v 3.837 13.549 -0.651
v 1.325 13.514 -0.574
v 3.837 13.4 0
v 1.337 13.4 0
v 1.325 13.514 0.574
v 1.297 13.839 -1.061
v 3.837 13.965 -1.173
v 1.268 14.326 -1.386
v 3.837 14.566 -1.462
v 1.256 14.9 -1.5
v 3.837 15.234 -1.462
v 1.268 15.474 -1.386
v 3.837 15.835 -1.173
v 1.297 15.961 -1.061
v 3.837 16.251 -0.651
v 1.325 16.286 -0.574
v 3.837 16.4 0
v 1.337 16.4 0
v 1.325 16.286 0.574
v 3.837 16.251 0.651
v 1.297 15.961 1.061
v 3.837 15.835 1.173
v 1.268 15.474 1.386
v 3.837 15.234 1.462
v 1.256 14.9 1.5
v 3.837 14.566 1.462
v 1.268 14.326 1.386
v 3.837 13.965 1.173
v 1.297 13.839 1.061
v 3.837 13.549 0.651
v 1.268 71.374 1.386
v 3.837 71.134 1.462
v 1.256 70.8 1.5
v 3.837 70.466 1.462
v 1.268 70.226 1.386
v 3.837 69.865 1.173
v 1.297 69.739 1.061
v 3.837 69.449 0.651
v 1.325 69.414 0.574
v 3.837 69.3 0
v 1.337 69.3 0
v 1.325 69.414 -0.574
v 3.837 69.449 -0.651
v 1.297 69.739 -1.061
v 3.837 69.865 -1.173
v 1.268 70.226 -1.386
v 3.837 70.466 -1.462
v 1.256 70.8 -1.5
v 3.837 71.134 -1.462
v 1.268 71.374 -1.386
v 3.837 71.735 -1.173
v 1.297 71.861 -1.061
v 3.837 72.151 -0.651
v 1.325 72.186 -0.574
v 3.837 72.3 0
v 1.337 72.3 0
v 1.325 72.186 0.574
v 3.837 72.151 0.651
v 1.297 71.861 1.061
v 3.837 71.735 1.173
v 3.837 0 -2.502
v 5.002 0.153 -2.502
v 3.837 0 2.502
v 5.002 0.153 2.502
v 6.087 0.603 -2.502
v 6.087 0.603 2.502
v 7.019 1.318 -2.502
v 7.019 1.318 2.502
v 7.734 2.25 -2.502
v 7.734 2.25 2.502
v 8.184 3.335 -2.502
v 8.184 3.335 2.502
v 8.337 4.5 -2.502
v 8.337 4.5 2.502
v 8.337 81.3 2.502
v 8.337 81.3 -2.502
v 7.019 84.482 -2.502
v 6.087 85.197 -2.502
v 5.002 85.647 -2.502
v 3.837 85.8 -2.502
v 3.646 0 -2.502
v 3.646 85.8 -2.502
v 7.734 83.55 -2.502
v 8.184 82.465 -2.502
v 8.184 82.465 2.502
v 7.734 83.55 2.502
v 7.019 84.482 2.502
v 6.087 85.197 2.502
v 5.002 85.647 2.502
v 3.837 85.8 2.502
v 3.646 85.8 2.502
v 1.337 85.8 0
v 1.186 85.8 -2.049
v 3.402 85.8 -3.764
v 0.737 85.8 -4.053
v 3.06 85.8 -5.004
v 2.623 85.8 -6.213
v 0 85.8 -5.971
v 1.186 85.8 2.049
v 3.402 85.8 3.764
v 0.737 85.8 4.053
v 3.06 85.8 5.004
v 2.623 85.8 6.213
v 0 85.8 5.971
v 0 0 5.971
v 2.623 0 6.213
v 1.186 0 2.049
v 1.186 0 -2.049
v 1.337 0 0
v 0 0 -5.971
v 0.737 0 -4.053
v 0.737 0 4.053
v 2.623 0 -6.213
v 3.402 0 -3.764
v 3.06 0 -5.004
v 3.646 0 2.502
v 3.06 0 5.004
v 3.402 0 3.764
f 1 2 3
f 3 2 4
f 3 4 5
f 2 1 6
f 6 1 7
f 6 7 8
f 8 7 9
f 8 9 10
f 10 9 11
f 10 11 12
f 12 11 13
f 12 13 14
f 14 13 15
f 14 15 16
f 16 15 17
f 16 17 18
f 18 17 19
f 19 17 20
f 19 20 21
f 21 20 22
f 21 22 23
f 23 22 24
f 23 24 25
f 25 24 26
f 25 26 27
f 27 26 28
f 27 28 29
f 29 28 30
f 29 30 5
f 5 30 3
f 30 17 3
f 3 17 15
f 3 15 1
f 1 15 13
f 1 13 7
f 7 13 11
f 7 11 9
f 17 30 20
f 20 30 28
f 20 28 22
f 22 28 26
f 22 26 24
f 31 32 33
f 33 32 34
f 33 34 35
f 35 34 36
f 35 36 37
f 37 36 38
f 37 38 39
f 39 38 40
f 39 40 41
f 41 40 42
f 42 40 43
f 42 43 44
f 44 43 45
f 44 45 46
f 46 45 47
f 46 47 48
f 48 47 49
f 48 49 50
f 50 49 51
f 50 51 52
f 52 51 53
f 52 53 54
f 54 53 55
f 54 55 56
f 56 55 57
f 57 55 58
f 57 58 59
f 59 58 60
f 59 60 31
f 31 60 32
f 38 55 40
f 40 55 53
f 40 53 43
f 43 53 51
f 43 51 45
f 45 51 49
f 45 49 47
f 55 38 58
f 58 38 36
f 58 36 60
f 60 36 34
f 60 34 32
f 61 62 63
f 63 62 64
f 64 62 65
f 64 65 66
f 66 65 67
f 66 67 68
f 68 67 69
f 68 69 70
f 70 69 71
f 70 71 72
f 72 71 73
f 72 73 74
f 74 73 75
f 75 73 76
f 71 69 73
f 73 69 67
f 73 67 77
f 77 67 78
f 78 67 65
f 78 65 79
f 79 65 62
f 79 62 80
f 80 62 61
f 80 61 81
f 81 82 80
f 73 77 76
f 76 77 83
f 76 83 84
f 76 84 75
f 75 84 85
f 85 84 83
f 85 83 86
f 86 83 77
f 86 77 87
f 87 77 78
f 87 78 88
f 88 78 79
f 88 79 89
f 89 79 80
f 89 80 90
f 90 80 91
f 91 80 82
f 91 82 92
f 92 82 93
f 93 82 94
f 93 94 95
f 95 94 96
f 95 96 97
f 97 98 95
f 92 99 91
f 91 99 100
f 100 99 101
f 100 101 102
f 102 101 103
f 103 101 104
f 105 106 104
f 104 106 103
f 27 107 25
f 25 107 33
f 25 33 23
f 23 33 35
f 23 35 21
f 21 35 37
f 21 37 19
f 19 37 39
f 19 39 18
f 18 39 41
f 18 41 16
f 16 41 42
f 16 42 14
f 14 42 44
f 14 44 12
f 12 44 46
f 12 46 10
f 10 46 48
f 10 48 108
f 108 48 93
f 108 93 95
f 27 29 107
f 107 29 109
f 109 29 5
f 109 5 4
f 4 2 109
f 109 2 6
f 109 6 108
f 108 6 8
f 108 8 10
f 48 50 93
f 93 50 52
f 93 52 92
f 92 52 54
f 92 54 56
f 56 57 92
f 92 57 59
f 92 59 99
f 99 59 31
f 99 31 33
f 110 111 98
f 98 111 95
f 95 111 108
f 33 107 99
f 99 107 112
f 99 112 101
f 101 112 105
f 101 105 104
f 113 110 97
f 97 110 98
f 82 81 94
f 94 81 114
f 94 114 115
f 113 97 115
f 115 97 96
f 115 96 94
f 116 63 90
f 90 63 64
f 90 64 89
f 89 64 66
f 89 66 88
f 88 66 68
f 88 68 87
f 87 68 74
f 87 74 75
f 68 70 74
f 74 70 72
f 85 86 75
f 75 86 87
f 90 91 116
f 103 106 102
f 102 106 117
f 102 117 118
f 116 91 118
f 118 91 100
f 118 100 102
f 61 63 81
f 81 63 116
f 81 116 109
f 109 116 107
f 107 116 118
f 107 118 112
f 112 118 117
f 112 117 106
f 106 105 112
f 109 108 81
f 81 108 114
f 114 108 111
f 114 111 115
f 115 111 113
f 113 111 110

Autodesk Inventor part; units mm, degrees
ref_plane "YZ Plane" through (0, 0, 0) normal (1, 0, 0) x (0, 1, 0)
ref_plane "XZ Plane" through (0, 0, 0) normal (0, 1, 0) x (-1, 0, 0)
sketch "Sketch1" plane through (0, 0, 0) normal (0, 1, 0) x (-1, 0, 0)
  arc A0 (-1.337, 0) -> (0, -5.9706) centre (12.663, 0) ccw
  line L0 (-1.337, 0) -> (0, 0)
  line L1 (0, -5.9706) -> (-2.6226, -6.213)
  line L2 (0, -5.9706) -> (5.1195, -5.9706) construction
  line L3 (0, 5.9706) -> (-2.6226, 6.213)
  line L4 (0, 5.9706) -> (2.6337, 5.9706) construction
  arc A1 (0, 5.9706) -> (-1.337, 0) centre (12.663, 0) ccw
  line L5 (-3.6462, -2.502) -> (-3.837, -2.502)
  line L6 (-3.6462, 2.502) -> (-3.837, 2.502)
  line L7 (-3.837, -2.502) -> (-8.337, -2.502)
  line L8 (-8.337, -2.502) -> (-8.337, 2.502)
  line L9 (-8.337, 2.502) -> (-3.837, 2.502)
  arc A2 (-2.6226, 6.213) -> (-3.6462, 2.502) centre (12.663, 0) ccw
  arc A3 (-3.6462, -2.502) -> (-2.6226, -6.213) centre (12.663, 0) ccw
  dimension "d2" = 174.72
  dimension "d3" = 174.72
  dimension "d7" = 4.5
extrude "Extrusion1" add sketch "Sketch1" along normal blind 85.8
fillet "Fillet1" radius 4.5 2 edges at (8.337, 85.8, 0) (8.337, 0, 0)
ref_plane "Work Plane1" through (3.837, 85.8, -2.502) normal (-1, 0, 0) x (0, -1, 0)
sketch "Sketch2" plane through (3.837, 85.8, -2.502) normal (-1, 0, 0) x (0, -1, 0)
  line L0 (0, 0) -> (0, 5.004) projected
  line L1 (0, 2.502) -> (15, 2.502) construction
  line L2 (85.8, 5.004) -> (85.8, 0) projected
  line L3 (85.8, 2.502) -> (70.8, 2.502) construction
  circle A0 centre (15, 2.502) radius 1.5
  line L4 (70.8, 2.502) -> (70.9, 2.502) construction
  circle A1 centre (70.9, 2.502) radius 1.5
  line L5 (70.9, 2.502) -> (71.1, 2.502) construction
  line L6 (71.1, 2.502) -> (71.1, 4.6181) construction
  dimension "d11" = 15
  dimension "d13" = 3
  dimension "d23" = 0.2
extrude "Extrusion2" cut sketch "Sketch2" along normal blind 7 contours A0
extrude "Extrusion3" cut sketch "Sketch2" along normal up to surface contours A1
properties part number "Grip"
